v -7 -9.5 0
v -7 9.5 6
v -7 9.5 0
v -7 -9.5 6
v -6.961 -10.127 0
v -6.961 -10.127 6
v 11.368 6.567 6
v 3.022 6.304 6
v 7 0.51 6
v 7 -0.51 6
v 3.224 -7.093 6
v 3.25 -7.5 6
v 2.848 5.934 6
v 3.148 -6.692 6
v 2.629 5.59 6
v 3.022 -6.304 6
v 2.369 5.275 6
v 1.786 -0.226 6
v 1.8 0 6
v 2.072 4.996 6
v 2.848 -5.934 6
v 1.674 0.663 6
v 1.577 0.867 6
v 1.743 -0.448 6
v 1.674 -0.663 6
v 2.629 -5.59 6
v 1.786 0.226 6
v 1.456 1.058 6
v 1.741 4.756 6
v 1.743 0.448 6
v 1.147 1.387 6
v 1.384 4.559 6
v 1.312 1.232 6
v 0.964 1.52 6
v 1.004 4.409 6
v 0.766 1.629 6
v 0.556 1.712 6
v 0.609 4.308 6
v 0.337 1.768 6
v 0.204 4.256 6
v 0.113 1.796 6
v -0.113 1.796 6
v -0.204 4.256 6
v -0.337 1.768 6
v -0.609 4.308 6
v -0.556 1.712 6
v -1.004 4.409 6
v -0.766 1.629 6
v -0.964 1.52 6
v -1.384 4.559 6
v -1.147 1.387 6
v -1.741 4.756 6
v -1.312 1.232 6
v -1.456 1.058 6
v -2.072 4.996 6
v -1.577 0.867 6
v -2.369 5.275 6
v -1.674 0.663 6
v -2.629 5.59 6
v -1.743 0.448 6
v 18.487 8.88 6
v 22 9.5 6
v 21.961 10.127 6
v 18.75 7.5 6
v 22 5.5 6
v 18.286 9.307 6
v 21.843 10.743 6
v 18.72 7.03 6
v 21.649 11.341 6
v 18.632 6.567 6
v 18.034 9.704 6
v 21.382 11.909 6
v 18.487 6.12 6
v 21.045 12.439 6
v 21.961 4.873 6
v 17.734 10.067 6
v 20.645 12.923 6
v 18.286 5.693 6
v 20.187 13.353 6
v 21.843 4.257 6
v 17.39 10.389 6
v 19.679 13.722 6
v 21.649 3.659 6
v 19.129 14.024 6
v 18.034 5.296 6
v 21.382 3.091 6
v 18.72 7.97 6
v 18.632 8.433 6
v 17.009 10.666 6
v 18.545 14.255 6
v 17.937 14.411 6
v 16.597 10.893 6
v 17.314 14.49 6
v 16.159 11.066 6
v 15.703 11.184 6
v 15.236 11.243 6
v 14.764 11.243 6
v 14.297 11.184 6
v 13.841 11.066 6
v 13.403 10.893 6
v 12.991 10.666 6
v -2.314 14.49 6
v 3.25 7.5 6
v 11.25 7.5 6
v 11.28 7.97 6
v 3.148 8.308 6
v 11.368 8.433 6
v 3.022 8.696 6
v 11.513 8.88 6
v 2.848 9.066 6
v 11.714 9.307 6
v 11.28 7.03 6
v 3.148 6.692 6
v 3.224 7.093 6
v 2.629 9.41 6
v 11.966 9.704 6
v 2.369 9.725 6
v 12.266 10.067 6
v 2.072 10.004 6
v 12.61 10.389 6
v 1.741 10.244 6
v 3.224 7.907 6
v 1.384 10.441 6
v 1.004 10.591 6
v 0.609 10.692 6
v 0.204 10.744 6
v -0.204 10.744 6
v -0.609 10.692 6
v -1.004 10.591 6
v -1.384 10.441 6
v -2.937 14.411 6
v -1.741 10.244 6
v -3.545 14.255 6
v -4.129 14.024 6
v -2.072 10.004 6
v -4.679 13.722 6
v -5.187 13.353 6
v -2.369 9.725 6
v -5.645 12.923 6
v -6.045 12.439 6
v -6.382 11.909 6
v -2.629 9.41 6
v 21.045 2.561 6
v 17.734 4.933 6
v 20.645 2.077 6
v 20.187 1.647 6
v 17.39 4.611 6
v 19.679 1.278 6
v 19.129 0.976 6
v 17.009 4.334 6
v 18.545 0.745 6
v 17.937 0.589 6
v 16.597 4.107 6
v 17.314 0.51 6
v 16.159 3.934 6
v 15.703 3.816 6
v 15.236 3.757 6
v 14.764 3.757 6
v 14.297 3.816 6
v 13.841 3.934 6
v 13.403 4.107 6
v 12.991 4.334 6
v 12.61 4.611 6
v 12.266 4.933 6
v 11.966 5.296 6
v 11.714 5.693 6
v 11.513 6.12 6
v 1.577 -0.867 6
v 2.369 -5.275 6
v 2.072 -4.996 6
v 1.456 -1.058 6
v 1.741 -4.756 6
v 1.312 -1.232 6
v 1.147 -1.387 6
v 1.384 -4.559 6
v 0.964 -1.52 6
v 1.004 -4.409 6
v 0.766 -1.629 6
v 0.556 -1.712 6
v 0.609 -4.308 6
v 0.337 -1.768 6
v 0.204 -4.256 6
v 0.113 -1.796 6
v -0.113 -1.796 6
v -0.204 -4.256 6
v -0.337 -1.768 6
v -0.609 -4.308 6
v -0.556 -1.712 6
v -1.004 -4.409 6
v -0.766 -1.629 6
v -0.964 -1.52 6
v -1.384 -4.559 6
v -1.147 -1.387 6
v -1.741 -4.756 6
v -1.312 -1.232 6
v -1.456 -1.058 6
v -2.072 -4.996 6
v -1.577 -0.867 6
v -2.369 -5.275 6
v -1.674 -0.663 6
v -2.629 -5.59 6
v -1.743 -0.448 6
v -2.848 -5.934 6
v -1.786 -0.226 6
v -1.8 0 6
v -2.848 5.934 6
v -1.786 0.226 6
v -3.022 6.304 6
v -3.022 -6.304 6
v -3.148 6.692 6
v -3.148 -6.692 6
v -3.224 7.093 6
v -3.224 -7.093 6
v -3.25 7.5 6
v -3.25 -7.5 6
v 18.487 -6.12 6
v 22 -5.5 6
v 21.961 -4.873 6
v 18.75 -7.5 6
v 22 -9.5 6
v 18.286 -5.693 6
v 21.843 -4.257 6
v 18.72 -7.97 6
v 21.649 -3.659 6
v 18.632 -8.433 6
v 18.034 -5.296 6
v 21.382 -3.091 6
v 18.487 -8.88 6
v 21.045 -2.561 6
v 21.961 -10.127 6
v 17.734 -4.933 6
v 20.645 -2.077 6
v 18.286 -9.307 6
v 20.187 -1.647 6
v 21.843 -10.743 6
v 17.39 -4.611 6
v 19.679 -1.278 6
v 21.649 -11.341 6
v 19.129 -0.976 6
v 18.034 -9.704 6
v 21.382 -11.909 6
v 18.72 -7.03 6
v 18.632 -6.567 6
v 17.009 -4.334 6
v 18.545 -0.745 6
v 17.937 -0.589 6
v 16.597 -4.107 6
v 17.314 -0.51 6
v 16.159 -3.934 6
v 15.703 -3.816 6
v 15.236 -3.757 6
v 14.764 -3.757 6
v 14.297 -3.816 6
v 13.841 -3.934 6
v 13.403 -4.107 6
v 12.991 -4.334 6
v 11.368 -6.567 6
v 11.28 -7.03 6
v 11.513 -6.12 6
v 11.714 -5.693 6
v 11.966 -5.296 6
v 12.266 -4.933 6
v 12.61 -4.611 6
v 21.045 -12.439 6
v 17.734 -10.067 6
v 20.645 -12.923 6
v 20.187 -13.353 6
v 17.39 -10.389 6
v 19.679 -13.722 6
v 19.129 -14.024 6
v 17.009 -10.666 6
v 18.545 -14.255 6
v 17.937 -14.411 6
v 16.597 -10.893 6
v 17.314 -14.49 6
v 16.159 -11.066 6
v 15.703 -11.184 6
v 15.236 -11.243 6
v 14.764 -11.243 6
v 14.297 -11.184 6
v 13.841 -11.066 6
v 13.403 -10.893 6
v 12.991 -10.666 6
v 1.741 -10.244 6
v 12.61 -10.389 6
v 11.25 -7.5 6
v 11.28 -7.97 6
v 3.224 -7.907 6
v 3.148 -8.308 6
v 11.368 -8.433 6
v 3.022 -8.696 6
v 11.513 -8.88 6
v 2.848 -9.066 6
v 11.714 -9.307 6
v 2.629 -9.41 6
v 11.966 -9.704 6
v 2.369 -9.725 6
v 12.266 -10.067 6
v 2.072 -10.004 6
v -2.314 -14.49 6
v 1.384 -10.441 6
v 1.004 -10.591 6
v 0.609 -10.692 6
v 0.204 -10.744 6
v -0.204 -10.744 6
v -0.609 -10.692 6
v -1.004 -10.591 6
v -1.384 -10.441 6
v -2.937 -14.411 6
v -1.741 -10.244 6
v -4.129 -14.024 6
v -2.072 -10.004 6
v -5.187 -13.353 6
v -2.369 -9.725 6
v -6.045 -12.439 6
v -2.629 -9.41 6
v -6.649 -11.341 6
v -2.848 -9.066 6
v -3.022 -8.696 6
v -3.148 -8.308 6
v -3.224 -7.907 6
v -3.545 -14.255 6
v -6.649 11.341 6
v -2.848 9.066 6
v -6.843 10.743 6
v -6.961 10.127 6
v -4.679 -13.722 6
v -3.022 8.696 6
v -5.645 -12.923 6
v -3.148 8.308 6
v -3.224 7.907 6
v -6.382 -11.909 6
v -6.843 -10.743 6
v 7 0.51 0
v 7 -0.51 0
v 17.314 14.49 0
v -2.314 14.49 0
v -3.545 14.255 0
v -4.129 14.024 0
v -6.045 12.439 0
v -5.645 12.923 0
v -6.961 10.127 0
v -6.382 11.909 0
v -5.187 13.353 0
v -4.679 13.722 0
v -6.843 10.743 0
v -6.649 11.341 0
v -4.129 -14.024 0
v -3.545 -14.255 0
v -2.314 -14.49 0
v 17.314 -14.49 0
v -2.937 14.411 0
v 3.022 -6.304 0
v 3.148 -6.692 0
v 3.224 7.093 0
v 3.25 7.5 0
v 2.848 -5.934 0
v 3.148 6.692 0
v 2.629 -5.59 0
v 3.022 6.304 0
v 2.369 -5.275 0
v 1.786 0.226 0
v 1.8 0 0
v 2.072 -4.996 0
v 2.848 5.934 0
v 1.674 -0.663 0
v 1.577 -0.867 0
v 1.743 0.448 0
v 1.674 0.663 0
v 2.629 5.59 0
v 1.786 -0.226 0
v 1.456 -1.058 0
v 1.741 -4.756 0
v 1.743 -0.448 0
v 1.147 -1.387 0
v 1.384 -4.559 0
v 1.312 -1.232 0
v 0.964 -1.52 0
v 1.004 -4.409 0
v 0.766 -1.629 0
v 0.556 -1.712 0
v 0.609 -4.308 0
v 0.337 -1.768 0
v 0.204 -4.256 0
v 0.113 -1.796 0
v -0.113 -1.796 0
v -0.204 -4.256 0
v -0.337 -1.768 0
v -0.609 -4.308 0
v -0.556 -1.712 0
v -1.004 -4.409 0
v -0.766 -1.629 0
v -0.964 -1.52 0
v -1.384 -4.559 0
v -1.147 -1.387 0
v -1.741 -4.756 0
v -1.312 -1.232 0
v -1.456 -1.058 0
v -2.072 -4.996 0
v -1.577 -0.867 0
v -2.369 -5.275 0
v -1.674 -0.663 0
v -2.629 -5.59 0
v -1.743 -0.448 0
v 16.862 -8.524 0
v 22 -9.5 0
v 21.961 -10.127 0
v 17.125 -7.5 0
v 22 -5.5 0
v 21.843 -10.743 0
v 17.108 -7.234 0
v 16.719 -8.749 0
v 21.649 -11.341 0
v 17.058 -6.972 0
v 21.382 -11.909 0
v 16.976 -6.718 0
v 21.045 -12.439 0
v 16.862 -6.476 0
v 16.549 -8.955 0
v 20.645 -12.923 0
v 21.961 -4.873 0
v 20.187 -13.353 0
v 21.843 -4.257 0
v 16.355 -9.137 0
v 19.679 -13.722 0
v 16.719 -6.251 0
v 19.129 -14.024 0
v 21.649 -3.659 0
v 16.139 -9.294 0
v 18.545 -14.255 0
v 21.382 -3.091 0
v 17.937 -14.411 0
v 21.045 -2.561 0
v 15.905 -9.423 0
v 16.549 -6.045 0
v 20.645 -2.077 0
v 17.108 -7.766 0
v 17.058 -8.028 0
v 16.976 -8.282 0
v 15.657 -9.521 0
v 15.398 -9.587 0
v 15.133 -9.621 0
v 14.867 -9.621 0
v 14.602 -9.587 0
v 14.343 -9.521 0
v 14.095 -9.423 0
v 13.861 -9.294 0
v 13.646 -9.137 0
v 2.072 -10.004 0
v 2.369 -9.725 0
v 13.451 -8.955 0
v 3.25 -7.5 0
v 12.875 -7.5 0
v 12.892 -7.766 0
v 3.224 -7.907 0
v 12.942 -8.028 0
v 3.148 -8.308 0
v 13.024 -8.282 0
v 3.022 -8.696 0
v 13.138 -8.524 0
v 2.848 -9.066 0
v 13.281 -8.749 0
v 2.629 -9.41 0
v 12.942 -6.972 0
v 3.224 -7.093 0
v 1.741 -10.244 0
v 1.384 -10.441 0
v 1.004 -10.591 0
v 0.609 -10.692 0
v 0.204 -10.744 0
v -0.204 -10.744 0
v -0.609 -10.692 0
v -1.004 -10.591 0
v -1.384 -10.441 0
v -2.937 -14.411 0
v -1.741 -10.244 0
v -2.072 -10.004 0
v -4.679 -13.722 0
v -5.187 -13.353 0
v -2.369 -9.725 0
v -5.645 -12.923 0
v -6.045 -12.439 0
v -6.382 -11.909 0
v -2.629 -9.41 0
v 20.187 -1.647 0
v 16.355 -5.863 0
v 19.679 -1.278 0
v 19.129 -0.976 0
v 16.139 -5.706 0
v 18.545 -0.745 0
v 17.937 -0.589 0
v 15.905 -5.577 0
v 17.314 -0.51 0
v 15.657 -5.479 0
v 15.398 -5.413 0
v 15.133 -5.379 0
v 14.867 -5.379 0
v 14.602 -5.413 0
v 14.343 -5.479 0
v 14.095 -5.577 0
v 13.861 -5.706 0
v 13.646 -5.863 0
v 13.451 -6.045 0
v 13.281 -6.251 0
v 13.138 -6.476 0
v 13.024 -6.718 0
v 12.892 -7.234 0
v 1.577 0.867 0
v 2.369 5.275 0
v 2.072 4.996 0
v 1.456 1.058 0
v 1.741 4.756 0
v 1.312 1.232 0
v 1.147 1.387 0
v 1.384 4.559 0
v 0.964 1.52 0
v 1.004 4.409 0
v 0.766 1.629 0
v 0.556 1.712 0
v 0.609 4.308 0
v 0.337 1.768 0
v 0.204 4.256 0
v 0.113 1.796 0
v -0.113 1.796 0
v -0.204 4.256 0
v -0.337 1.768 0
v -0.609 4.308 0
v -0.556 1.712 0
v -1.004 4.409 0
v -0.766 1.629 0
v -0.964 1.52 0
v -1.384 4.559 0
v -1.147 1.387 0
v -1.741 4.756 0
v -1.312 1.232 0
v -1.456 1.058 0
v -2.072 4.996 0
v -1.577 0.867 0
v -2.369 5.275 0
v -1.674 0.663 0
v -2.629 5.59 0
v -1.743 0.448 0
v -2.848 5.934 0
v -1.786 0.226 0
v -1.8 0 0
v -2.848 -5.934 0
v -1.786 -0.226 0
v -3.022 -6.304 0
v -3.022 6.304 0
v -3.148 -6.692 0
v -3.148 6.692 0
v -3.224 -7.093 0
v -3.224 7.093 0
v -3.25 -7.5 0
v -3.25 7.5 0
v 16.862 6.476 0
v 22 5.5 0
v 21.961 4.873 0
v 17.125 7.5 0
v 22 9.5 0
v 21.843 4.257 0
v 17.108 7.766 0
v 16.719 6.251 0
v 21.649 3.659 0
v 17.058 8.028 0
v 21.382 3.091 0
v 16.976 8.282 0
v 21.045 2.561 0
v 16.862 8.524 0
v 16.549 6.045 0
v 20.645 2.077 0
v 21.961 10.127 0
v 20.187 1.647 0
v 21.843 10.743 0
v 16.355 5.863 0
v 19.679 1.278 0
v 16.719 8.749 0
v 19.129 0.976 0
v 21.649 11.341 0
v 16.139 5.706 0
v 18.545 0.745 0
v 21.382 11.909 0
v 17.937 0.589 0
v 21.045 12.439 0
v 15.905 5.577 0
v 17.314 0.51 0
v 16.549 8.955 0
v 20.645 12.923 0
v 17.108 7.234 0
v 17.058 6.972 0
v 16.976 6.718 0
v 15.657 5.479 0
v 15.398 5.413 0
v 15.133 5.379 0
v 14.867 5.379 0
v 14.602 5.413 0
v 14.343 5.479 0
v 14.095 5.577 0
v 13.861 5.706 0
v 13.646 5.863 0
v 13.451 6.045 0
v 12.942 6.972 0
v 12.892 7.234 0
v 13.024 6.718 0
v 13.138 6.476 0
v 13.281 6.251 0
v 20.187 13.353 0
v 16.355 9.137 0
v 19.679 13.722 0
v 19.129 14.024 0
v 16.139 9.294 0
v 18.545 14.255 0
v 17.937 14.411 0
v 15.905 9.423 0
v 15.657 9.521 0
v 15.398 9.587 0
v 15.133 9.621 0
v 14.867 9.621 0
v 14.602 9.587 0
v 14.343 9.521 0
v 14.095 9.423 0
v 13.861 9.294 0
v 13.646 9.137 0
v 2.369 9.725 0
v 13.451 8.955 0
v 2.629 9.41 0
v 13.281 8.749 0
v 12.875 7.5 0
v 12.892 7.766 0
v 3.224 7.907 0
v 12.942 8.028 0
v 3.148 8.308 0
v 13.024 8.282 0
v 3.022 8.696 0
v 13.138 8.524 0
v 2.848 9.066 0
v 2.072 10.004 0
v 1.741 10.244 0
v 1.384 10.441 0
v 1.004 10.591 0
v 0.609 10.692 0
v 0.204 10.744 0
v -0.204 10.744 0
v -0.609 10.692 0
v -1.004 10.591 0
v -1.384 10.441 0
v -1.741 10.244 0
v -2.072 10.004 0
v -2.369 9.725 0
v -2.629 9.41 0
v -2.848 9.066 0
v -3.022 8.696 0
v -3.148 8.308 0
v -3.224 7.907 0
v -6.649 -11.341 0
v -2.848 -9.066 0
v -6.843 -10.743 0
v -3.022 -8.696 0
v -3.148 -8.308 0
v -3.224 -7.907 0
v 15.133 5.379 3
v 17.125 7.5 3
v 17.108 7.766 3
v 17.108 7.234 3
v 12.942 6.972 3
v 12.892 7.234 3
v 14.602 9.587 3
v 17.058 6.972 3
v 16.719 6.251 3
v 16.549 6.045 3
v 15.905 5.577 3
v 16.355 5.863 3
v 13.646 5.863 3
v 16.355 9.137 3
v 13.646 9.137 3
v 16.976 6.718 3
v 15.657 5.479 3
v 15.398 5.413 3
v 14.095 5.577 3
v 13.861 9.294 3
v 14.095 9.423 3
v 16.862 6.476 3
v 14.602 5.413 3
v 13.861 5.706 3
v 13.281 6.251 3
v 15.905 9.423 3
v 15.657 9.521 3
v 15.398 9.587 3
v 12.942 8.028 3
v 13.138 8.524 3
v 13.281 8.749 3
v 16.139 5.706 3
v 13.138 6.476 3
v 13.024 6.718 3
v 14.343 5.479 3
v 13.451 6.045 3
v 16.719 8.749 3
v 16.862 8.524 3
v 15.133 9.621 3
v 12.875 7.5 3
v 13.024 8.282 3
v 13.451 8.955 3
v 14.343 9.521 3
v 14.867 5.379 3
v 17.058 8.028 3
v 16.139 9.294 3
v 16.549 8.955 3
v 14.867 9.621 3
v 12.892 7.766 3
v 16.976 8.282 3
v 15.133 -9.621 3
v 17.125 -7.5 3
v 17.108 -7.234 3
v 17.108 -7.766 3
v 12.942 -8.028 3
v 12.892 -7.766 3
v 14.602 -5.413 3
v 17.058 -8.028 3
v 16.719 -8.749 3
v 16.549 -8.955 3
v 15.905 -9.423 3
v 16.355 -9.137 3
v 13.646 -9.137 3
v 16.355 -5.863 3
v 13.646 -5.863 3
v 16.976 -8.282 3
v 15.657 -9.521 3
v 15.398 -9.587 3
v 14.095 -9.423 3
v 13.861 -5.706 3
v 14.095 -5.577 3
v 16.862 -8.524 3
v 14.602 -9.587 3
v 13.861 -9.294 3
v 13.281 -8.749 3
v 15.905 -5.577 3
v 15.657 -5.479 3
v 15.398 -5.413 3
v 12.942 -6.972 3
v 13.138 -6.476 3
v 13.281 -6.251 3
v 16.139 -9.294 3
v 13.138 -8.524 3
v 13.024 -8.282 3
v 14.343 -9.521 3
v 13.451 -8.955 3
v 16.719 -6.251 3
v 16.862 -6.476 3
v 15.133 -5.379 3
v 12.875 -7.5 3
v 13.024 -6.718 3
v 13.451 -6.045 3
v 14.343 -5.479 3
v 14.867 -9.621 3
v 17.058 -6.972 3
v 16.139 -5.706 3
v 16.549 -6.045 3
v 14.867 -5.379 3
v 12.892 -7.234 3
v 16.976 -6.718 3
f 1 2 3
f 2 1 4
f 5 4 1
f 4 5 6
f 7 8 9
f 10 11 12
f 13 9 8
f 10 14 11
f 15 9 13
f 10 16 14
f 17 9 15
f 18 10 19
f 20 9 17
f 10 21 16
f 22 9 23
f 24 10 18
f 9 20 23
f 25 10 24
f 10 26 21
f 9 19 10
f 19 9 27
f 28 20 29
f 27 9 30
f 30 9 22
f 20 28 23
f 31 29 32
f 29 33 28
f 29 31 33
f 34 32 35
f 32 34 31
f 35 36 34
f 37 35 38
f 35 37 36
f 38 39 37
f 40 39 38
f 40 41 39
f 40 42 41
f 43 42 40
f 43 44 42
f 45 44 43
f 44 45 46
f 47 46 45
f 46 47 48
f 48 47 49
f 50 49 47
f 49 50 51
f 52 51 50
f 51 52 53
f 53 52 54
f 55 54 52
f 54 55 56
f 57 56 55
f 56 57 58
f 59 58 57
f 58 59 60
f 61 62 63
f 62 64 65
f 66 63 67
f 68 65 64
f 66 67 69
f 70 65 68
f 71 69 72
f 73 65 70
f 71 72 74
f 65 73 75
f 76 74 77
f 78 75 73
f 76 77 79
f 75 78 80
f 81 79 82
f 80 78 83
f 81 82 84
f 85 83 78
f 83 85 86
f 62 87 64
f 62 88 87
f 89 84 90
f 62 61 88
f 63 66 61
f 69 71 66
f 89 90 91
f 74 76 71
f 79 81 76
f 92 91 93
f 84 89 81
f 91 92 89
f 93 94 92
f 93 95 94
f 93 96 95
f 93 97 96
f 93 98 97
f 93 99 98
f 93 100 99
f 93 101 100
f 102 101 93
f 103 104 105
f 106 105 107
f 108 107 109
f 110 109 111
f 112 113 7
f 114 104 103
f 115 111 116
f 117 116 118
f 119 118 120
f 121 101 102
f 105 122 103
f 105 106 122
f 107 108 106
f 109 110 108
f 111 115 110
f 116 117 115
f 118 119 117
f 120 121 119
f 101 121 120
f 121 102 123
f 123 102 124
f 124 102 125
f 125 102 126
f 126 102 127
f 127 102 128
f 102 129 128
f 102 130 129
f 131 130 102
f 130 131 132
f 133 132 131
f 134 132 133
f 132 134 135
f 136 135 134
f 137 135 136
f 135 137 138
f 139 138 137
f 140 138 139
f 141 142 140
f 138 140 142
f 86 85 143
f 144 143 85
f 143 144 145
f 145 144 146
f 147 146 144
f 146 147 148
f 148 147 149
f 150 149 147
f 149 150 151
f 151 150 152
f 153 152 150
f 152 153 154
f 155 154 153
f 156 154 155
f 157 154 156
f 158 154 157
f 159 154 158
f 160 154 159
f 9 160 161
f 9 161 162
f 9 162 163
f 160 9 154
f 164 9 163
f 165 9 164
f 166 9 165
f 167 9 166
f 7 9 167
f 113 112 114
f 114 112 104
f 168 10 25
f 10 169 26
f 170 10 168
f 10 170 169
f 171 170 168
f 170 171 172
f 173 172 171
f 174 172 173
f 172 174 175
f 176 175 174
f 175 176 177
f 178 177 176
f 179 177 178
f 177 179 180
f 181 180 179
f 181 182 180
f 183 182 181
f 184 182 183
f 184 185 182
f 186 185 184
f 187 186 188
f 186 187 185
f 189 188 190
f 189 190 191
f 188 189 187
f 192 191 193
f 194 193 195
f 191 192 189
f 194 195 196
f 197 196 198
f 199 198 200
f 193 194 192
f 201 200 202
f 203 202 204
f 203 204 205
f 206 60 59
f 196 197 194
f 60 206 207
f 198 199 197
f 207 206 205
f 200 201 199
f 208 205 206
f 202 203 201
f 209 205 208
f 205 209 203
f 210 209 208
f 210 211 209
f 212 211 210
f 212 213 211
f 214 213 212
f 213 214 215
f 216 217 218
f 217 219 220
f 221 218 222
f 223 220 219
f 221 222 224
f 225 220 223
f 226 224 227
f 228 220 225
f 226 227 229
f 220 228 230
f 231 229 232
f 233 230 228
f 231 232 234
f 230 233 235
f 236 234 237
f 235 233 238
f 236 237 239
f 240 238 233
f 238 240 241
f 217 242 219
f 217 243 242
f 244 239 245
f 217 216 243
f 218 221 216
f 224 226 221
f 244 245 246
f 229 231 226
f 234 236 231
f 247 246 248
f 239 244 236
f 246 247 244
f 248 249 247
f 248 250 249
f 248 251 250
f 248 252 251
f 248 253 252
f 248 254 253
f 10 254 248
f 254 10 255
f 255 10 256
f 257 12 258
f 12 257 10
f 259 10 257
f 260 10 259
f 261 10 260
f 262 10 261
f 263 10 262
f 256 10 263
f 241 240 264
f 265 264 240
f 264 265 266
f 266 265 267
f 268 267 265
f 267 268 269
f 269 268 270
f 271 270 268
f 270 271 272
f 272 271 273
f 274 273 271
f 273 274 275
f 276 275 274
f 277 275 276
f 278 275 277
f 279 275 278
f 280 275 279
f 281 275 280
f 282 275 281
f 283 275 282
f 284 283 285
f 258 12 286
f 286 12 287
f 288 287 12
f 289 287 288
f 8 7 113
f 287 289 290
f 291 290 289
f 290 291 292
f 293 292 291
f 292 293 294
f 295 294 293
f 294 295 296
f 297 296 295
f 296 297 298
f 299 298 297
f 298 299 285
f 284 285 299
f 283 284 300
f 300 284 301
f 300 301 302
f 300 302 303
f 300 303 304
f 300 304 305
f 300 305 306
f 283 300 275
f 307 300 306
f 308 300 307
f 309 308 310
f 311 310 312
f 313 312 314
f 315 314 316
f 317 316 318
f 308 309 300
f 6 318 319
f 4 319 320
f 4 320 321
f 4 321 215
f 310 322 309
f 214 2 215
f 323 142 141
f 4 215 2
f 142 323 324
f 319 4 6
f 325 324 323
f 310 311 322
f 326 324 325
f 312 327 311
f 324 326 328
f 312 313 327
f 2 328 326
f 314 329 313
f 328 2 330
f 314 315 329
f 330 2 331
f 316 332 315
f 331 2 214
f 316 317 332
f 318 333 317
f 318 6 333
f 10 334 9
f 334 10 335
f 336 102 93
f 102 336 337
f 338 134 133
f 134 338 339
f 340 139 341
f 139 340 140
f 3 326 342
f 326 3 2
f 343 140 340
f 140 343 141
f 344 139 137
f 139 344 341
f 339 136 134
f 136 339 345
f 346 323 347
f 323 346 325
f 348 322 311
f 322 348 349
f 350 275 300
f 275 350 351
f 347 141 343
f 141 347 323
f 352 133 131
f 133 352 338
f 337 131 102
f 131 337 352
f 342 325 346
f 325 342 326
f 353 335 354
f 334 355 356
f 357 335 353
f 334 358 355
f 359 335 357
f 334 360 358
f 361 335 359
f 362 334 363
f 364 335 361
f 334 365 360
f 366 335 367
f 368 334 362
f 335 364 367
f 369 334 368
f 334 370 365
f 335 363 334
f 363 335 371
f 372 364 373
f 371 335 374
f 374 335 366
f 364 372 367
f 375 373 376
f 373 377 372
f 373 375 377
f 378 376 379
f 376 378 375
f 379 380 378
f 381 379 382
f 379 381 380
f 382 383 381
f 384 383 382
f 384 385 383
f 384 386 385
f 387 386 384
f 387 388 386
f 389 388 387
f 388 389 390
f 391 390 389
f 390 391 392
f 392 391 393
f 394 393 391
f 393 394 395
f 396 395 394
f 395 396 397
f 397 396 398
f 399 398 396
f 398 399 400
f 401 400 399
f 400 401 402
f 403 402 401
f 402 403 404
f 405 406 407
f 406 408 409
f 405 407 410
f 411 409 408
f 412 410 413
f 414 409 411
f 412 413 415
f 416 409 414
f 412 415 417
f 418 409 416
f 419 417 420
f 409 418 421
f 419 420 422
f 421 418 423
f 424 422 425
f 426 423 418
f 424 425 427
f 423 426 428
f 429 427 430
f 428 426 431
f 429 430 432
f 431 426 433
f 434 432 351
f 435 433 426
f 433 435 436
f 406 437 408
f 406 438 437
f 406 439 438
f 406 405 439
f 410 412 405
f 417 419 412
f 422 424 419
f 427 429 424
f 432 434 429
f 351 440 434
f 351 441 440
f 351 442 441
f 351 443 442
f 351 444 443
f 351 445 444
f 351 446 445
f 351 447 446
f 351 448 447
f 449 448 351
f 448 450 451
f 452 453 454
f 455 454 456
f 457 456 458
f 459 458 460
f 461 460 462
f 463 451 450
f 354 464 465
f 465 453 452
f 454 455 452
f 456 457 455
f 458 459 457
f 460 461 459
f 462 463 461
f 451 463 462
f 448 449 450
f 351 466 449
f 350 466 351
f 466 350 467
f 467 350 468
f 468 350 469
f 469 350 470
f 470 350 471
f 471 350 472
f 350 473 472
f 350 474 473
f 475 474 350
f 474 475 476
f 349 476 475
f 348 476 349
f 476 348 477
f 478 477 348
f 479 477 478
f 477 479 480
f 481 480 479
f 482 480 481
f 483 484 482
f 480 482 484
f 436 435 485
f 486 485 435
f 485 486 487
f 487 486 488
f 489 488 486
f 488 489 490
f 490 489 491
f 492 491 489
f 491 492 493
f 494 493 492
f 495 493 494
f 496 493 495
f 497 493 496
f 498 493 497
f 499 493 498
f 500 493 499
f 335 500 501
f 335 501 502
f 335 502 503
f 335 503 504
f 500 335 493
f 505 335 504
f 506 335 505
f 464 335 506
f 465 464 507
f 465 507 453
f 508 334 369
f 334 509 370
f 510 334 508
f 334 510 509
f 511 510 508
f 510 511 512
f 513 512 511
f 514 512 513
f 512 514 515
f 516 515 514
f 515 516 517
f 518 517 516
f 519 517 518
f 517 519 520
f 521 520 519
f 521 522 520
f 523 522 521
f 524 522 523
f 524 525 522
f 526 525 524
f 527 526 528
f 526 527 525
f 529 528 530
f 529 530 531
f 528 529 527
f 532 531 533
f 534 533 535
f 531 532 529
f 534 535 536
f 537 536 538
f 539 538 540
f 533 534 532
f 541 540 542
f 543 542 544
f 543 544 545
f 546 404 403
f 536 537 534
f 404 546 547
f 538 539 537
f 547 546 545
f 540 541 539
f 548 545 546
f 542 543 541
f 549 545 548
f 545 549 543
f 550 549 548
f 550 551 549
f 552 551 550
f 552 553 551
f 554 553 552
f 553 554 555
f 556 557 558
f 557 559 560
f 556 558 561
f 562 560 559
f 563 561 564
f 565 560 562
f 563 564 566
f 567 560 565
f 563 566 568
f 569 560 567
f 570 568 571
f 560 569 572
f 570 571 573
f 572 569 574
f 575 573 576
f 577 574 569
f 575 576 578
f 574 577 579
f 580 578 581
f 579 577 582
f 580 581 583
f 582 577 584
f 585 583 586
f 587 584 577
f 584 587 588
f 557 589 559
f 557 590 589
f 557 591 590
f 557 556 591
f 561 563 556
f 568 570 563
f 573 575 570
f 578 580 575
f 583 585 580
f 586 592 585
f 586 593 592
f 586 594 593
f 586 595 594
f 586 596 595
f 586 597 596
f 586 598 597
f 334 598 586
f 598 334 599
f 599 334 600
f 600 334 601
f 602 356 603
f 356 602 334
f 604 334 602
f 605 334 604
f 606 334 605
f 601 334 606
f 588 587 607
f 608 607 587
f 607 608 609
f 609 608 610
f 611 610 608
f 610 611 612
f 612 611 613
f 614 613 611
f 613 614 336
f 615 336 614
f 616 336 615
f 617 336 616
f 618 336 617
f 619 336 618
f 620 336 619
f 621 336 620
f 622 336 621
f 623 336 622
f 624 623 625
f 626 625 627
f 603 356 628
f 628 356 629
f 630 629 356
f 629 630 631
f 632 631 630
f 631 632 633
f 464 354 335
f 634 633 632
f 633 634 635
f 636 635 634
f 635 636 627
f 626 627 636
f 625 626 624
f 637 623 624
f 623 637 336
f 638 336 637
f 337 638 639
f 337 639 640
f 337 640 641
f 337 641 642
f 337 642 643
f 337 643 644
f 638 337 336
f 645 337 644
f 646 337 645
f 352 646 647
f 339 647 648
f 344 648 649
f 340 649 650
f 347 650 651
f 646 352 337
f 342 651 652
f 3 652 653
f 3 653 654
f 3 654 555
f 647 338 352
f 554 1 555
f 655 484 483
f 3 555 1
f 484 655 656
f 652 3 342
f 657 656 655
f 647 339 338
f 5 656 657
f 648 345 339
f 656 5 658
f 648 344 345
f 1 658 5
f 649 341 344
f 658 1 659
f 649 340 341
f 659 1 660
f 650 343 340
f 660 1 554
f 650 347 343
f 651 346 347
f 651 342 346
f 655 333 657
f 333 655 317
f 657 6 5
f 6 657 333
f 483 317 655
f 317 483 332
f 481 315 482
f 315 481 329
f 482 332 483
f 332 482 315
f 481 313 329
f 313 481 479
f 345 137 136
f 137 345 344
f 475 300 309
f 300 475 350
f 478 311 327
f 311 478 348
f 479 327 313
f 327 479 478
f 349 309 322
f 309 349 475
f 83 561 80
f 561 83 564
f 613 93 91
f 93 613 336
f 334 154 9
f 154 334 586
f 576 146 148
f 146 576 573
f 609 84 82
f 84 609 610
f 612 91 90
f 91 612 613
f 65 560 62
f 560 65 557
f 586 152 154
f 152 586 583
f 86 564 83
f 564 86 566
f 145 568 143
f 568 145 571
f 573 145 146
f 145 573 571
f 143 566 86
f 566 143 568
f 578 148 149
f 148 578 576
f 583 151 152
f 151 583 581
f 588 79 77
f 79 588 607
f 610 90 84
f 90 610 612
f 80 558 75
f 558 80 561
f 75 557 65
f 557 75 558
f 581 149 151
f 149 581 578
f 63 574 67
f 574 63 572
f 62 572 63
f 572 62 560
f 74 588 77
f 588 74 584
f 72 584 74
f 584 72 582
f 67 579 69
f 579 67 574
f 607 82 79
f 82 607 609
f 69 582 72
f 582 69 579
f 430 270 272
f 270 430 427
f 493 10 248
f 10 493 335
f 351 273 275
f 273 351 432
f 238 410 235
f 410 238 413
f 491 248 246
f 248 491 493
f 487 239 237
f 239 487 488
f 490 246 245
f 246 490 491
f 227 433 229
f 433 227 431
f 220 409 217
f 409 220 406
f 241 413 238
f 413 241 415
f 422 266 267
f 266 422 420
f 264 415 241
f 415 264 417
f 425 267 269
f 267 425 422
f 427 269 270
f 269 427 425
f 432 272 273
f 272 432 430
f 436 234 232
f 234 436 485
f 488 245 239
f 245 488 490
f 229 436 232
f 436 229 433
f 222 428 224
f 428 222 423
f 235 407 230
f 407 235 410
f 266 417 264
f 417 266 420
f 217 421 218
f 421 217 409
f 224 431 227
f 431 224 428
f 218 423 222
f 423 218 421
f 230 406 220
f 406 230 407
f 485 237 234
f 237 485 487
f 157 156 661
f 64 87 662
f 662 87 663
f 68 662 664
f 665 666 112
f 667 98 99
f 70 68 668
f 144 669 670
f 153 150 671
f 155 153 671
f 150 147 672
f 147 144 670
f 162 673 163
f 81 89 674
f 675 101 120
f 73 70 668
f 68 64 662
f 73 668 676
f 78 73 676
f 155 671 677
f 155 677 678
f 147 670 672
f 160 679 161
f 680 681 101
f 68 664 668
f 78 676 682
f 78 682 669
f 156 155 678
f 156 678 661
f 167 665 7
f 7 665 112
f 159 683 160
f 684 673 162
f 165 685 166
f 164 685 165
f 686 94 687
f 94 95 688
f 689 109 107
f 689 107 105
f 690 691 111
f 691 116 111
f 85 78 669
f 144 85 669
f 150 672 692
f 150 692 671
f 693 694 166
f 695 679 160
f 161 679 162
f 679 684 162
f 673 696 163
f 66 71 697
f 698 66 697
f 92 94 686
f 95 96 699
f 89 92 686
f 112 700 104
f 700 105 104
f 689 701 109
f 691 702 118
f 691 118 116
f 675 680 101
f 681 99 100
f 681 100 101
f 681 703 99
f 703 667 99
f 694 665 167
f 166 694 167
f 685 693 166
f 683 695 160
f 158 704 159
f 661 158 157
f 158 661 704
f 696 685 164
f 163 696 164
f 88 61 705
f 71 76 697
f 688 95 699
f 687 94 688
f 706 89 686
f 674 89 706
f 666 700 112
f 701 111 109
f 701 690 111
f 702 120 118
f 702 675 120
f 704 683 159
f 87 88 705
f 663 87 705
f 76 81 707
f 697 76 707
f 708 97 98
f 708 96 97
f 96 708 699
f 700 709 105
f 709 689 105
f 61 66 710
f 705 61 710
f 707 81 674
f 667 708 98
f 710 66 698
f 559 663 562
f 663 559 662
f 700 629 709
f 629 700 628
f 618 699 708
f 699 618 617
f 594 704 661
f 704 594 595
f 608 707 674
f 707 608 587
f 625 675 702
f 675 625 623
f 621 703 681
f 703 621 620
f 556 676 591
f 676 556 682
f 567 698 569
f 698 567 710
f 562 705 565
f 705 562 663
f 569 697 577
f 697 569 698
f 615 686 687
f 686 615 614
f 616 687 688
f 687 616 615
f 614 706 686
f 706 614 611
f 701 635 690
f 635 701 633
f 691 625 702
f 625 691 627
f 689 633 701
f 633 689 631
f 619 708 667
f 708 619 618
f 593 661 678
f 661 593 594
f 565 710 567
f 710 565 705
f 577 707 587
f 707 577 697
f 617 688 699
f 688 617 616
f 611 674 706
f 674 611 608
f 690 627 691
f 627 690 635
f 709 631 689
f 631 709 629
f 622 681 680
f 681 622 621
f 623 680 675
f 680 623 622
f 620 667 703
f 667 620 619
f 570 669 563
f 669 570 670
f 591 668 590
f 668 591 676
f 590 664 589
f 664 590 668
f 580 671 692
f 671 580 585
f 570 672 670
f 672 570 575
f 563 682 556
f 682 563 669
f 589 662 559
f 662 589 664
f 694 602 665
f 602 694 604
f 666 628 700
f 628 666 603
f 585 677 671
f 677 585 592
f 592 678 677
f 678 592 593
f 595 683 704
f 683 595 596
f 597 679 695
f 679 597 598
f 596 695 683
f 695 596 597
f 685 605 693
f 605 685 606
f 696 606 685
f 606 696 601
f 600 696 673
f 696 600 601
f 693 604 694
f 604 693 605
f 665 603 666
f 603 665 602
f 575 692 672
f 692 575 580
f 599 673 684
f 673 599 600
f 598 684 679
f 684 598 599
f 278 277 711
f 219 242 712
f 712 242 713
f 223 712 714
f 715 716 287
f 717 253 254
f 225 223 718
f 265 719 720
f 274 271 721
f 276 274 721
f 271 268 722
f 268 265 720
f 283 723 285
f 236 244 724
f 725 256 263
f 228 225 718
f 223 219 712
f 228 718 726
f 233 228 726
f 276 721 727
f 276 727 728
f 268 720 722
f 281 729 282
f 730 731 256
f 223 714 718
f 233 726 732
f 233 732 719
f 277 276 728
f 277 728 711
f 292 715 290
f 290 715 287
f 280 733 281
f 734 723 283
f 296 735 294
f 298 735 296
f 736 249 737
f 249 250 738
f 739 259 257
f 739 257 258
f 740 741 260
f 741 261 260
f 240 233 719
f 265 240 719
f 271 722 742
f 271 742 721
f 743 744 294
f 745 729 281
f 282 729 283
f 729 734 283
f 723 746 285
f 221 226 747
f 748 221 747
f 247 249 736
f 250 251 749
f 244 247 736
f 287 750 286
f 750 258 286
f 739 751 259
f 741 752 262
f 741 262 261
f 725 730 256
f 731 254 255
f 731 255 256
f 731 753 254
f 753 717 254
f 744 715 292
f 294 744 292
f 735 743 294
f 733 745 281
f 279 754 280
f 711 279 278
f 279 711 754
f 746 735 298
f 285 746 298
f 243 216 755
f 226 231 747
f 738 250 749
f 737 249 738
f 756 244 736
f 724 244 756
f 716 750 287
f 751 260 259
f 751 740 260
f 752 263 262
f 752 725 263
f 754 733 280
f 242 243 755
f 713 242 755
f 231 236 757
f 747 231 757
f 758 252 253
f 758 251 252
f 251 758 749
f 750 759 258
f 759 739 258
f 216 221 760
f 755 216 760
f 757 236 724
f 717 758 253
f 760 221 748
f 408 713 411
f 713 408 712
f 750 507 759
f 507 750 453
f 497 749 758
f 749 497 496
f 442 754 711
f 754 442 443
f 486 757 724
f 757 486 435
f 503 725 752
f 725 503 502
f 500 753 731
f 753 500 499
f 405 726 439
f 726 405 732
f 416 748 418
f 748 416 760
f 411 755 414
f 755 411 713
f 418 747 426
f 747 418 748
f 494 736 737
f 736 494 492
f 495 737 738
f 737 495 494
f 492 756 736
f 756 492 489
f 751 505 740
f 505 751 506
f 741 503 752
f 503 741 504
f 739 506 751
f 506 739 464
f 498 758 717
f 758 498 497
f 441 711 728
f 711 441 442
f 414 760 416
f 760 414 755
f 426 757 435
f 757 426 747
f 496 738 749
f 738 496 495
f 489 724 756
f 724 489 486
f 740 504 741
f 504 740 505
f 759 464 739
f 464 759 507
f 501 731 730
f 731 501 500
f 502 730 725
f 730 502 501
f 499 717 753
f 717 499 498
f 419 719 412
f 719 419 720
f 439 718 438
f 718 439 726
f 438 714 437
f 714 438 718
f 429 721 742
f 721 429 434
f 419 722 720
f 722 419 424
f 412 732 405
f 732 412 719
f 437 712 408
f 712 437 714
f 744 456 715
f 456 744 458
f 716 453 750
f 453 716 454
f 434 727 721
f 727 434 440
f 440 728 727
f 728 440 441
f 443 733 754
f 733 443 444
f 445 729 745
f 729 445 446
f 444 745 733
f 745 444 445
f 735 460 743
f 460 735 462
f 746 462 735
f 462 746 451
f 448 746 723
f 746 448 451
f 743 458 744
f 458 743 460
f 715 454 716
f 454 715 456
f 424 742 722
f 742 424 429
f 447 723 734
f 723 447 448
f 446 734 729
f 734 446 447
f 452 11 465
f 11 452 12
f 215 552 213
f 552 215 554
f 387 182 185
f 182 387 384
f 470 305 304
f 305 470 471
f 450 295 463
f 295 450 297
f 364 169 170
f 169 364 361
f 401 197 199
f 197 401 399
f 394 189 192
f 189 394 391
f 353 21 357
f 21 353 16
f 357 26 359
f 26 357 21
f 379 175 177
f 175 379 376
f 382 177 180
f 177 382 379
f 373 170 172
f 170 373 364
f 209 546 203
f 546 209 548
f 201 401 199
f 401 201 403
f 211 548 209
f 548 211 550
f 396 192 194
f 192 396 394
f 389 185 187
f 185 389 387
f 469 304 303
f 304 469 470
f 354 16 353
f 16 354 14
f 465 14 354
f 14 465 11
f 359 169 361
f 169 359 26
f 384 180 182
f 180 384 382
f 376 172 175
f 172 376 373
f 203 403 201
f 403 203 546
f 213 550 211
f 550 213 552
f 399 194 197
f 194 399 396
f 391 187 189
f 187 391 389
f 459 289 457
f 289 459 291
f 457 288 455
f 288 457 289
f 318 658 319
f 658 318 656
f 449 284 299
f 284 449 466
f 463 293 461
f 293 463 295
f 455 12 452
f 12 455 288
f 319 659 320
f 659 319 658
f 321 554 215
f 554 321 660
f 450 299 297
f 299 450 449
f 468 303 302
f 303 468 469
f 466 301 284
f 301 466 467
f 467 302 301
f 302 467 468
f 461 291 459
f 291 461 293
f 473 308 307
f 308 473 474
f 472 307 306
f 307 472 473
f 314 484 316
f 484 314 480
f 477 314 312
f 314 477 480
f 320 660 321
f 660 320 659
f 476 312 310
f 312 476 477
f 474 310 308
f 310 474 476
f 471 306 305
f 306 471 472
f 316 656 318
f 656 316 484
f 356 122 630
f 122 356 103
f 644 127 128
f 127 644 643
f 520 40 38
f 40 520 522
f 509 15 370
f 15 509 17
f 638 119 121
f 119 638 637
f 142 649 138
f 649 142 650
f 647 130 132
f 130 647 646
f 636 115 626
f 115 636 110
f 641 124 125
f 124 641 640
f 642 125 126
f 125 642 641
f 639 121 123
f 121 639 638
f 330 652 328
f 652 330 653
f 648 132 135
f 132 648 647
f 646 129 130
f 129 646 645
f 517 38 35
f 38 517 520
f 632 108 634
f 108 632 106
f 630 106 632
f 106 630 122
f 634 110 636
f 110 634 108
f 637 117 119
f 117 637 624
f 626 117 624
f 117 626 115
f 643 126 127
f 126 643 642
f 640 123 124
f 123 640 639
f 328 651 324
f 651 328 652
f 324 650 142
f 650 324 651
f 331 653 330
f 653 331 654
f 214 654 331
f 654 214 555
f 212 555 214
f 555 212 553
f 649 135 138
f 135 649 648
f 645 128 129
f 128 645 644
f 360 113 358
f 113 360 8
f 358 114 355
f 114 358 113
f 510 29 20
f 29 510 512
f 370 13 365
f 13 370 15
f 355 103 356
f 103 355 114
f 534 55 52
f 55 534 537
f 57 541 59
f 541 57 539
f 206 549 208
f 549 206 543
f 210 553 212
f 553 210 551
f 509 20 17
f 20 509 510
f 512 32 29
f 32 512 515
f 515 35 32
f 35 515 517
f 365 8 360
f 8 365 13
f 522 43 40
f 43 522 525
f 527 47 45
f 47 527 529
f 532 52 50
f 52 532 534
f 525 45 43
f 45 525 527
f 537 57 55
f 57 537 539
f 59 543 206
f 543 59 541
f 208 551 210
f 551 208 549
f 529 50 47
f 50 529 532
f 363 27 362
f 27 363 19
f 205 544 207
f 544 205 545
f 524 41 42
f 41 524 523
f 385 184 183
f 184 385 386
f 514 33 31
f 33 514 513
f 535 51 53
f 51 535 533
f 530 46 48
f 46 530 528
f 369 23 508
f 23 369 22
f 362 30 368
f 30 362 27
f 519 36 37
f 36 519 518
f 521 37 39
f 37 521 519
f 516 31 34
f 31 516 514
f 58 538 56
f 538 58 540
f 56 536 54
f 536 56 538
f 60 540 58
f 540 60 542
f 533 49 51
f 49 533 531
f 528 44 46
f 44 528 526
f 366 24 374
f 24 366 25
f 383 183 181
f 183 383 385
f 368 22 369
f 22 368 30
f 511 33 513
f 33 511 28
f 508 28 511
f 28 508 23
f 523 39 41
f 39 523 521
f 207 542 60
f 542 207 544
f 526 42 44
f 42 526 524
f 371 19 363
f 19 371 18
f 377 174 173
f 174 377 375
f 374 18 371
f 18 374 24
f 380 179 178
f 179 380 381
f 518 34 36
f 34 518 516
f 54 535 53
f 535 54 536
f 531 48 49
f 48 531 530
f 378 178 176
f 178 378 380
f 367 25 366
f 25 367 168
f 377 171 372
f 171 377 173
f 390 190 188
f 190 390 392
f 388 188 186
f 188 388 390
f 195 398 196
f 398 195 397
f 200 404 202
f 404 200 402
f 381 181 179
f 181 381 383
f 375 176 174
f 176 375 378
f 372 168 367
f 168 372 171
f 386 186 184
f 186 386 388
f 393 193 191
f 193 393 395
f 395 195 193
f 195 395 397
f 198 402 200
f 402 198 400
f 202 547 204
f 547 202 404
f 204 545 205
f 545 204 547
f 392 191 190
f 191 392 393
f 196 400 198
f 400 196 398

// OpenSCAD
$fn = 50;


difference() {
	union() {
		hull() {
			translate(v = [-2.0000000000, 9.5000000000, 0]) {
				cylinder(h = 6, r = 5);
			}
			translate(v = [2.0000000000, 9.5000000000, 0]) {
				cylinder(h = 6, r = 5);
			}
			translate(v = [-2.0000000000, -9.5000000000, 0]) {
				cylinder(h = 6, r = 5);
			}
			translate(v = [2.0000000000, -9.5000000000, 0]) {
				cylinder(h = 6, r = 5);
			}
		}
		translate(v = [7.5000000000, 7.5000000000, 0]) {
			hull() {
				translate(v = [-9.5000000000, 2.0000000000, 0]) {
					cylinder(h = 6, r = 5);
				}
				translate(v = [9.5000000000, 2.0000000000, 0]) {
					cylinder(h = 6, r = 5);
				}
				translate(v = [-9.5000000000, -2.0000000000, 0]) {
					cylinder(h = 6, r = 5);
				}
				translate(v = [9.5000000000, -2.0000000000, 0]) {
					cylinder(h = 6, r = 5);
				}
			}
		}
		translate(v = [7.5000000000, -7.5000000000, 0]) {
			hull() {
				translate(v = [-9.5000000000, 2.0000000000, 0]) {
					cylinder(h = 6, r = 5);
				}
				translate(v = [9.5000000000, 2.0000000000, 0]) {
					cylinder(h = 6, r = 5);
				}
				translate(v = [-9.5000000000, -2.0000000000, 0]) {
					cylinder(h = 6, r = 5);
				}
				translate(v = [9.5000000000, -2.0000000000, 0]) {
					cylinder(h = 6, r = 5);
				}
			}
		}
	}
	union() {
		translate(v = [15.0000000000, 7.5000000000, 6]) {
			rotate(a = [0, 0, 0]) {
				difference() {
					union() {
						#translate(v = [0, 0, -6.0000000000]) {
							cylinder(h = 6, r = 2.0000000000);
						}
						#translate(v = [0, 0, -3]) {
							cylinder(h = 3, r1 = 2.1250000000, r2 = 3.7500000000);
						}
						#translate(v = [0, 0, -6.0000000000]) {
							cylinder(h = 6, r = 2.1250000000);
						}
						#translate(v = [0, 0, -6.0000000000]) {
							cylinder(h = 6, r = 2.0000000000);
						}
					}
					union();
				}
			}
		}
		translate(v = [15.0000000000, -7.5000000000, 6]) {
			rotate(a = [0, 0, 0]) {
				difference() {
					union() {
						#translate(v = [0, 0, -6.0000000000]) {
							cylinder(h = 6, r = 2.0000000000);
						}
						#translate(v = [0, 0, -3]) {
							cylinder(h = 3, r1 = 2.1250000000, r2 = 3.7500000000);
						}
						#translate(v = [0, 0, -6.0000000000]) {
							cylinder(h = 6, r = 2.1250000000);
						}
						#translate(v = [0, 0, -6.0000000000]) {
							cylinder(h = 6, r = 2.0000000000);
						}
					}
					union();
				}
			}
		}
		translate(v = [0.0000000000, -7.5000000000, 0]) {
			translate(v = [0, 0, -100]) {
				cylinder(h = 200, r = 3.2500000000);
			}
		}
		translate(v = [0.0000000000, 7.5000000000, 0]) {
			translate(v = [0, 0, -100]) {
				cylinder(h = 200, r = 3.2500000000);
			}
		}
		translate(v = [0.0000000000, -7.5000000000, 0]) {
			translate(v = [0, 0, -100]) {
				cylinder(h = 200, r = 1.8000000000);
			}
		}
		translate(v = [0, 0, -100]) {
			cylinder(h = 200, r = 1.8000000000);
		}
		translate(v = [0.0000000000, 7.5000000000, 0]) {
			translate(v = [0, 0, -100]) {
				cylinder(h = 200, r = 1.8000000000);
			}
		}
	}
}
